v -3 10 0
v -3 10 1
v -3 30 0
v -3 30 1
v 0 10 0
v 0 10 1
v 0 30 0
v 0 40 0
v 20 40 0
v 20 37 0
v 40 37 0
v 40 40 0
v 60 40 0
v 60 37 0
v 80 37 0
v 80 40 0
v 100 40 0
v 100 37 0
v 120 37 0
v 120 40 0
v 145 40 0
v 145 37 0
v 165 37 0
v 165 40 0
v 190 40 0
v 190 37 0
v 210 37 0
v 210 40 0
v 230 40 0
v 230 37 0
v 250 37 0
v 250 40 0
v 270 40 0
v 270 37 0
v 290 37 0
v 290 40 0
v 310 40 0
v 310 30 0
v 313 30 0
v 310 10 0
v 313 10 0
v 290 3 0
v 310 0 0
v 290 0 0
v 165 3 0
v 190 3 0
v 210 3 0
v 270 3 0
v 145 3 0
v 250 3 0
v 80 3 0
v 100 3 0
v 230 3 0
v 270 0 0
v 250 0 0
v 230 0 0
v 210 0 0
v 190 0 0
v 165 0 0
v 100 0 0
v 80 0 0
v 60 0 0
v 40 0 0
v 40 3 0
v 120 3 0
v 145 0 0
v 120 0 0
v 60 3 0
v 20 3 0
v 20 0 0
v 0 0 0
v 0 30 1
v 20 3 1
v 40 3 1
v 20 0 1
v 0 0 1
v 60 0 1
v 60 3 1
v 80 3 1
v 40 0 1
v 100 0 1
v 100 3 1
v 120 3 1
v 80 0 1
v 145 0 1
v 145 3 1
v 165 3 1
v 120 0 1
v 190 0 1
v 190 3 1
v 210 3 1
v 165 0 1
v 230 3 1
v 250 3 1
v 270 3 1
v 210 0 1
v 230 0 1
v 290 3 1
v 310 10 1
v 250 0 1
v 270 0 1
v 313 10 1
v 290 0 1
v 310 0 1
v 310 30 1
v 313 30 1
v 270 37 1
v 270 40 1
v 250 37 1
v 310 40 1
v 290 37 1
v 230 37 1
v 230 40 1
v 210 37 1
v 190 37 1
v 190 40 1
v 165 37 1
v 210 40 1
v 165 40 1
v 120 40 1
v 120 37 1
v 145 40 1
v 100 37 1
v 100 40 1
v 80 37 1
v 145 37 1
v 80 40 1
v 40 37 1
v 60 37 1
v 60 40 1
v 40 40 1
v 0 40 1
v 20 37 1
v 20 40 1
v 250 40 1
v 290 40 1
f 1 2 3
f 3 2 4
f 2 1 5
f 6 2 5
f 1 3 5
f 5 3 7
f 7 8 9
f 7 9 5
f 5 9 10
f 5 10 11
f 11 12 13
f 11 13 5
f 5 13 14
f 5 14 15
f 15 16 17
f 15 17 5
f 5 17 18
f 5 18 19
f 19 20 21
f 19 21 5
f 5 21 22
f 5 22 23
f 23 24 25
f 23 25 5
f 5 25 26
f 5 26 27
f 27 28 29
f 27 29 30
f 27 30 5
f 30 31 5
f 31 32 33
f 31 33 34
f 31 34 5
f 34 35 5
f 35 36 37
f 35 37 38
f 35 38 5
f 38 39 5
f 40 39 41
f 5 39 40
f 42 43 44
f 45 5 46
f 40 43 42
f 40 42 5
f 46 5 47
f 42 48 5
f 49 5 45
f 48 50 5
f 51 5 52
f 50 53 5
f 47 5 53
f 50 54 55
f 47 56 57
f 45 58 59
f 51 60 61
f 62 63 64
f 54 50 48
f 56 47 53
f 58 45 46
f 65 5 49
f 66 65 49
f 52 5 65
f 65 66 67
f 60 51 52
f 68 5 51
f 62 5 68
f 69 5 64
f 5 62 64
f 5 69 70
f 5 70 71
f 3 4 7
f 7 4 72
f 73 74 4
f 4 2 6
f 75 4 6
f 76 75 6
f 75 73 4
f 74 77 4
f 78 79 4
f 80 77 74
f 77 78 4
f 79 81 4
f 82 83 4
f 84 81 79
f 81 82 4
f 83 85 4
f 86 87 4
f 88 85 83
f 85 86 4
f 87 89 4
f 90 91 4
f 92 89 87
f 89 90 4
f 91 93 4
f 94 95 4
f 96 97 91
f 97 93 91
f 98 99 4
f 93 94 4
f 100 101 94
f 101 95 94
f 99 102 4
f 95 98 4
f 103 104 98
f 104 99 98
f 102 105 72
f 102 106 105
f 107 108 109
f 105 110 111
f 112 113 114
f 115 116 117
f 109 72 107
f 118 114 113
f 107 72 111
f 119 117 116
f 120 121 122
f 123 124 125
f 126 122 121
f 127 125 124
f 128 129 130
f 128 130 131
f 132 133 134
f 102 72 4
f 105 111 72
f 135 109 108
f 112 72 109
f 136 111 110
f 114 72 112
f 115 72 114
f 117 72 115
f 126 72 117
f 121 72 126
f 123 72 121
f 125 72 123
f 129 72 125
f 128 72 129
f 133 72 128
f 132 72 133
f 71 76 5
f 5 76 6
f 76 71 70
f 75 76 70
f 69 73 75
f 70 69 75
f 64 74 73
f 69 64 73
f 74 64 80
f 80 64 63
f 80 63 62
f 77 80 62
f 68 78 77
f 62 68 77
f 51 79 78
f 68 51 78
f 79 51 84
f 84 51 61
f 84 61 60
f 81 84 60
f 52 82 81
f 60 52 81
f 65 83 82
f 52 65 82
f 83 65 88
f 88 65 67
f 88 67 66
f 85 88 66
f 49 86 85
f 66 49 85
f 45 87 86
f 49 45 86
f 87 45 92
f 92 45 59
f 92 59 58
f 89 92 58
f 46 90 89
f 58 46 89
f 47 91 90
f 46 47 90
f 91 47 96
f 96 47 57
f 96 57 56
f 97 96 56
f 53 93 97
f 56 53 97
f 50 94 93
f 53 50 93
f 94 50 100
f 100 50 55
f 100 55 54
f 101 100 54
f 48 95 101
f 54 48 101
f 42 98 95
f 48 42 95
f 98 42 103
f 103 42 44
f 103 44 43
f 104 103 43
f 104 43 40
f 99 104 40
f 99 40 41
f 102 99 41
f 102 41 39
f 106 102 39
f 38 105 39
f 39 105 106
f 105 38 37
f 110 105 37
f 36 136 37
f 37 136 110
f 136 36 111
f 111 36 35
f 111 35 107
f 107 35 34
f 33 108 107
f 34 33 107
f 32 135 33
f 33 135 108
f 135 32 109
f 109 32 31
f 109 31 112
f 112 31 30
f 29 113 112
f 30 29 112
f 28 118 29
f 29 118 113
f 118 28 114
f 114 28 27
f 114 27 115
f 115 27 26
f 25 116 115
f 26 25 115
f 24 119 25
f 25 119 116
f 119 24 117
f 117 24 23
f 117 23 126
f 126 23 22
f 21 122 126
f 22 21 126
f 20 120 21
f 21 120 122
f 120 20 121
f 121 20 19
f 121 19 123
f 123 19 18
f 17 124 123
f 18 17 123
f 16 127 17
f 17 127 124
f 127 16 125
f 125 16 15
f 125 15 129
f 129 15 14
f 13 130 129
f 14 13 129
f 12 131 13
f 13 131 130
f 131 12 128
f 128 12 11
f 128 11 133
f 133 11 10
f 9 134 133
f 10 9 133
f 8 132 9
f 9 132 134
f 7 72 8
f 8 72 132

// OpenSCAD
tapwitdh = 20;
tapheight = 3;
bot = 0;
top = 37;
module inderside()
{
	difference() 
	{
		cube([310,40,1]);
		union()
		{
			translate([60,bot,-1]) cube([tapwitdh,tapheight,5]);
			translate([230,bot,-1]) cube([tapwitdh,tapheight,5]);
			translate([20,bot,-1]) cube([tapwitdh,tapheight,5]);
			translate([270,bot,-1]) cube([tapwitdh,tapheight,5]);
			translate([100,bot,-1]) cube([tapwitdh,tapheight,5]);
			translate([190,bot,-1]) cube([tapwitdh,tapheight,5]);
			translate([145,bot,-1]) cube([tapwitdh,tapheight,5]);

			translate([20,top,-1]) cube([tapwitdh,tapheight,5]);
			translate([270,top,-1]) cube([tapwitdh,tapheight,5]);
			translate([60,top,-1]) cube([tapwitdh,tapheight,5]);
			translate([230,top,-1]) cube([tapwitdh,tapheight,5]);
			translate([100,top,-1]) cube([tapwitdh,tapheight,5]);
			translate([190,top,-1]) cube([tapwitdh,tapheight,5]);
			translate([145,top,-1]) cube([tapwitdh,tapheight,5]);

			//translate([60,12,-1]) cube([tapwitdh,tapheight,5]);
			//translate([230,12,-1]) cube([tapwitdh,tapheight,5]);
		}
	}
	translate([-3,10,0])cube([tapheight,tapwitdh,1]);
	translate([310,10,0])cube([tapheight,tapwitdh,1]);
}
inderside();
